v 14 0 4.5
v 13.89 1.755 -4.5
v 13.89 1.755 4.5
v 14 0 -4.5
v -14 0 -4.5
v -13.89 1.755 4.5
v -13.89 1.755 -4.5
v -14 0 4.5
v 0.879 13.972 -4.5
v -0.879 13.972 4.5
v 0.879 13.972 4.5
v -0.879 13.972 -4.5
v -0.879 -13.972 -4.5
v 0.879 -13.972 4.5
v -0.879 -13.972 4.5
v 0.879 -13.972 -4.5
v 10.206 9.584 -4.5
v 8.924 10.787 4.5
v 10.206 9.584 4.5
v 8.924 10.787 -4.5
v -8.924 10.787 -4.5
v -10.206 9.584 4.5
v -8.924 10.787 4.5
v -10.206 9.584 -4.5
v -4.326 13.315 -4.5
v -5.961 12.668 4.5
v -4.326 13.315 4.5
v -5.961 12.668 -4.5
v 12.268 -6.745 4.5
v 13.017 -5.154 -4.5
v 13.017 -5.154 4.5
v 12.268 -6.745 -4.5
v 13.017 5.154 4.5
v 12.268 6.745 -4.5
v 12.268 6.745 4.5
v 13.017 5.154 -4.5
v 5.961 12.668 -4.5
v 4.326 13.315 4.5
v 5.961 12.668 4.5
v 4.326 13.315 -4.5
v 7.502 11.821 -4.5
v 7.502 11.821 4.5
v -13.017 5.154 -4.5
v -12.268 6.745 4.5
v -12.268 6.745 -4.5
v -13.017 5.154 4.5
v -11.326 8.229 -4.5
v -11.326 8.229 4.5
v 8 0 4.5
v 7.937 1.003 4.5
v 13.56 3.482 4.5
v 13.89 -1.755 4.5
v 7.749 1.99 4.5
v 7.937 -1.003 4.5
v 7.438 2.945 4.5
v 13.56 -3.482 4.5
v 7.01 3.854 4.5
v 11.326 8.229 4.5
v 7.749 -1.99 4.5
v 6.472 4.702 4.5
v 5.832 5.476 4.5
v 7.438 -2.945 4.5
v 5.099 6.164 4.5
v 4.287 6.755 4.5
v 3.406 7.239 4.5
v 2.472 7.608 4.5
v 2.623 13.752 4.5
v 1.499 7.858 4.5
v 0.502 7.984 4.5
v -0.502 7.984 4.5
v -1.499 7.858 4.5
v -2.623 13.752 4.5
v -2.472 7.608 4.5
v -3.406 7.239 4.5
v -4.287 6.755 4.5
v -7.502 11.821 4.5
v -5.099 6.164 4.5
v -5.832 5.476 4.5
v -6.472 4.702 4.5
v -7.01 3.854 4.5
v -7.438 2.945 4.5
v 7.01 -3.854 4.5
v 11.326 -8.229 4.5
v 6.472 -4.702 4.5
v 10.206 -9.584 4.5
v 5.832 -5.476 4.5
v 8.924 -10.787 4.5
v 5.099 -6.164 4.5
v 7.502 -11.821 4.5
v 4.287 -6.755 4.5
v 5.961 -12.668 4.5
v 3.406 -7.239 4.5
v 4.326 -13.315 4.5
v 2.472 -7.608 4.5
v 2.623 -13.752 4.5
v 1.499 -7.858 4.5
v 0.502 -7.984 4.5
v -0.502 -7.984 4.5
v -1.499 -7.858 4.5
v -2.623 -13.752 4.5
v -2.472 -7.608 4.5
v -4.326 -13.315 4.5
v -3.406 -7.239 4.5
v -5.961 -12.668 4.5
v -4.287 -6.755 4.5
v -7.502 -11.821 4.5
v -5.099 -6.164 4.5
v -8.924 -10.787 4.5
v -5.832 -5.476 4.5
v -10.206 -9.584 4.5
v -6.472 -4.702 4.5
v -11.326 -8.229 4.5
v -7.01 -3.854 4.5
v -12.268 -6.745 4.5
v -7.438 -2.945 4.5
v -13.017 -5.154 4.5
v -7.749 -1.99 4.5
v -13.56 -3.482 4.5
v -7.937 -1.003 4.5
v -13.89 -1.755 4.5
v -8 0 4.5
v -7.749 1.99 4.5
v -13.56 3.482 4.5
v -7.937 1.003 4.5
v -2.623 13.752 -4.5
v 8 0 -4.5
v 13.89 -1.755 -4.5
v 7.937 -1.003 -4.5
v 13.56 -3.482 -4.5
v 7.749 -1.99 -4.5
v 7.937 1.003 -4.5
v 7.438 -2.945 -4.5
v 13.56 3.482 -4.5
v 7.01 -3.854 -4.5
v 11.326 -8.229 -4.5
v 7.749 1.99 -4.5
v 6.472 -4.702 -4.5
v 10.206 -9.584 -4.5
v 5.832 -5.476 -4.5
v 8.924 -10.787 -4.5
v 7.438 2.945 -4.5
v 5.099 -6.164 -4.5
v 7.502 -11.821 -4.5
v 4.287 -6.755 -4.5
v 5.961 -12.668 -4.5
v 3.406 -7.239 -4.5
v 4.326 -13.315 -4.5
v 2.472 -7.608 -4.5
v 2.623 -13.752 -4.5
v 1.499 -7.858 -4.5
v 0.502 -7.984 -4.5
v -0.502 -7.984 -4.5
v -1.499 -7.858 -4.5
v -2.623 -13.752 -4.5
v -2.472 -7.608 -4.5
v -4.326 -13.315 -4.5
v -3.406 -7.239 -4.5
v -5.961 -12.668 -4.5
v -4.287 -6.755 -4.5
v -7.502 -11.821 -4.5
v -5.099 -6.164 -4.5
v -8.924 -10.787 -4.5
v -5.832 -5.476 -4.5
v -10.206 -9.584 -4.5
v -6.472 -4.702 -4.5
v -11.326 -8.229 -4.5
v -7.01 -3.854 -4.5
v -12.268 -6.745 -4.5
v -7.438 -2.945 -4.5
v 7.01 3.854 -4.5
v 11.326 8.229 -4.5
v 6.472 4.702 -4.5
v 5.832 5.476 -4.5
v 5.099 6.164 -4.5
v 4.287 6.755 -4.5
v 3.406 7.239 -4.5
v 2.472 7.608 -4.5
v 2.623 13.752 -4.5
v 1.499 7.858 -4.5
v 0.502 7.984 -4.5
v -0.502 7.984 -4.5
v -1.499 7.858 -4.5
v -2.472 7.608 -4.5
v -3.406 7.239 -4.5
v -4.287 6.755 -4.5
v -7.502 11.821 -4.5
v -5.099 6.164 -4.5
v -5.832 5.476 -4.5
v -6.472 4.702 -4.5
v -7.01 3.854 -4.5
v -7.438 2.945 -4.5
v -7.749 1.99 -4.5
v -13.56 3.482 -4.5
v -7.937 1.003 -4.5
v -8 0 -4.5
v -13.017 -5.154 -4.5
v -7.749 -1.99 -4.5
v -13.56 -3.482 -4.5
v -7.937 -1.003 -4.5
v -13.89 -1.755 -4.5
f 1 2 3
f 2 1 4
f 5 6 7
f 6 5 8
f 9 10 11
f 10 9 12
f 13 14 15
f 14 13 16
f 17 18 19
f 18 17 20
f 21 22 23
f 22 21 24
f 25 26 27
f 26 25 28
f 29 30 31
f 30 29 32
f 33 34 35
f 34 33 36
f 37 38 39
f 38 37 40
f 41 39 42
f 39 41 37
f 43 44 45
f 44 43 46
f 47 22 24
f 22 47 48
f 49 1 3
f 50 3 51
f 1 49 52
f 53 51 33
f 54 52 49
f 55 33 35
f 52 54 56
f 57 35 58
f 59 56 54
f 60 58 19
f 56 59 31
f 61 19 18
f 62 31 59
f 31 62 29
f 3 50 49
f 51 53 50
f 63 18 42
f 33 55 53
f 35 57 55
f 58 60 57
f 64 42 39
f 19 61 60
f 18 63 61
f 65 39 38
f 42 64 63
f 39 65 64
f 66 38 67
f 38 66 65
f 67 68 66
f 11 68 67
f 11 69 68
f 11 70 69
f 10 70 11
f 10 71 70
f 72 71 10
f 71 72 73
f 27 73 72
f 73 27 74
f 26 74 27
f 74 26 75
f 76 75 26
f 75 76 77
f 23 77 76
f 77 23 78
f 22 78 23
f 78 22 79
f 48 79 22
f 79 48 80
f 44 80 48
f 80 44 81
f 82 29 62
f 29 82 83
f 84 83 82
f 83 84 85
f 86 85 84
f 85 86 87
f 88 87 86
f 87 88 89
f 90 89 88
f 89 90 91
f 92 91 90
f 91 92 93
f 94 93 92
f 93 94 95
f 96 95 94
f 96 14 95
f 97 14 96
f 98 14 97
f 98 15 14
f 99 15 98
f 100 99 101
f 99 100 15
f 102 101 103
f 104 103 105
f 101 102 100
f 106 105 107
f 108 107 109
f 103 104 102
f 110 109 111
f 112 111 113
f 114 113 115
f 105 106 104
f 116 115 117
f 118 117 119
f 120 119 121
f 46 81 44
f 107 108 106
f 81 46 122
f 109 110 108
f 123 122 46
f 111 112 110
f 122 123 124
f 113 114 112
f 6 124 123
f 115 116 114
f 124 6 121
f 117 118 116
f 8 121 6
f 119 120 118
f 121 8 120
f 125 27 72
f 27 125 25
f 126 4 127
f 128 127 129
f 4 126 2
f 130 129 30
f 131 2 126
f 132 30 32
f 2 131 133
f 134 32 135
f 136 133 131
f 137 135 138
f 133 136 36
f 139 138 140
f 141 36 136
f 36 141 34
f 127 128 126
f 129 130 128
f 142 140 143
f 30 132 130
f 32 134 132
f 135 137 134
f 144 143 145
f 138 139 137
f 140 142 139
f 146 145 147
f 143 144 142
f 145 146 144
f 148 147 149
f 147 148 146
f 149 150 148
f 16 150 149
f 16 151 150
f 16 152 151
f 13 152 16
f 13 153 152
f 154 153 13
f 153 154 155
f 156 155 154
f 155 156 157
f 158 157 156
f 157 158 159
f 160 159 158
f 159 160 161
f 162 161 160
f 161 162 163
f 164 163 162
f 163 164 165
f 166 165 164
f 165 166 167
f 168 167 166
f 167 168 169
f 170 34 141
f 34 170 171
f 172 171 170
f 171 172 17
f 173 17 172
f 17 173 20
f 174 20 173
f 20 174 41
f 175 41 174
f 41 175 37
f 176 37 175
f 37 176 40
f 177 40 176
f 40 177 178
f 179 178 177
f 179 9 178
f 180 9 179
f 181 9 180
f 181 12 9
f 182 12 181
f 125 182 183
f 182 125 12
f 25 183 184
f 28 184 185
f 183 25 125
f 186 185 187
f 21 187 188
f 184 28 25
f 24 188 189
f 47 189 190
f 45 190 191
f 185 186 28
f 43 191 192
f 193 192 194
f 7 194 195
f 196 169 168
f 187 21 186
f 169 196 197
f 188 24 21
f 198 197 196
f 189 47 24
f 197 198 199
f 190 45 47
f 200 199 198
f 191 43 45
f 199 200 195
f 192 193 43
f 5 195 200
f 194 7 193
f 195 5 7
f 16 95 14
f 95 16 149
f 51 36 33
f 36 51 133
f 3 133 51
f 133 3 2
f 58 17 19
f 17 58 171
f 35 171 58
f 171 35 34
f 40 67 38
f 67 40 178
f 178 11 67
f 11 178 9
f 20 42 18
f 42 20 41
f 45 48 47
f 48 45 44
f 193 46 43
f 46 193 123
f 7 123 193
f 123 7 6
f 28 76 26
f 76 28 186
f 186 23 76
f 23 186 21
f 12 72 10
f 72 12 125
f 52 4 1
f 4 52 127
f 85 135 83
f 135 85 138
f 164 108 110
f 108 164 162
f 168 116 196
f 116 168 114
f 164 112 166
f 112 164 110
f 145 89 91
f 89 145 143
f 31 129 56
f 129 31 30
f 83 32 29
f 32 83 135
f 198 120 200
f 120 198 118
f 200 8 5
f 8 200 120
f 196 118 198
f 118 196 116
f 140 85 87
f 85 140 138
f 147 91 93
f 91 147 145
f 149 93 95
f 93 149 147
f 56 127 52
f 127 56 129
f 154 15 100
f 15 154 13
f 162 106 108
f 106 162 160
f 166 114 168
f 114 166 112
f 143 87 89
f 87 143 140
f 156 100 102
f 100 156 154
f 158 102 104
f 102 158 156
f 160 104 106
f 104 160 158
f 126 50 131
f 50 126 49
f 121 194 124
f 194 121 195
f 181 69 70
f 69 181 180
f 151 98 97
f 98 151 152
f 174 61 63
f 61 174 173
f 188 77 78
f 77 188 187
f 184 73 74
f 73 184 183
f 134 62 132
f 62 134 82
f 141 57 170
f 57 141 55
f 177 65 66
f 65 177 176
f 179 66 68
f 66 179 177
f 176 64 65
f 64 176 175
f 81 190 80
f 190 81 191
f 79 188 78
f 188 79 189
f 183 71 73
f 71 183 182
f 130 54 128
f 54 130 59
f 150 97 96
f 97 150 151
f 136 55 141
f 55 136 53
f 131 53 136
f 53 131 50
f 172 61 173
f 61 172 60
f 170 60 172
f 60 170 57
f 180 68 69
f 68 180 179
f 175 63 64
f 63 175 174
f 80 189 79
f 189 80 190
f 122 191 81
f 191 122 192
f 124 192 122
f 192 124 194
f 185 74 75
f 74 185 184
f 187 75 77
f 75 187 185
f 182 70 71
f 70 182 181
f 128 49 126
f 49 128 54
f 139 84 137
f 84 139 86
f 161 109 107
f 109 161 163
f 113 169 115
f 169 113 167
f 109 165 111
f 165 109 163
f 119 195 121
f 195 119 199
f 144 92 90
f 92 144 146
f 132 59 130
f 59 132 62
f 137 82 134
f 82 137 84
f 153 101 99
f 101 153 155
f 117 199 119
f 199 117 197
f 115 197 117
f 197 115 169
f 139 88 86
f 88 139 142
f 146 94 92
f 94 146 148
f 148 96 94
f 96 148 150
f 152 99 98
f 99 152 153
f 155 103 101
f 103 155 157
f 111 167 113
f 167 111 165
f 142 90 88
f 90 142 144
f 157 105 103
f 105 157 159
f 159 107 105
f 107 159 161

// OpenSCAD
$fn = 50;


difference() {
	union() {
		translate(v = [0, 0, -4.5000000000]) {
			cylinder(h = 9, r = 14.0000000000);
		}
	}
	union() {
		translate(v = [0, 0, -100.0000000000]) {
			cylinder(h = 200, r = 8);
		}
	}
}
